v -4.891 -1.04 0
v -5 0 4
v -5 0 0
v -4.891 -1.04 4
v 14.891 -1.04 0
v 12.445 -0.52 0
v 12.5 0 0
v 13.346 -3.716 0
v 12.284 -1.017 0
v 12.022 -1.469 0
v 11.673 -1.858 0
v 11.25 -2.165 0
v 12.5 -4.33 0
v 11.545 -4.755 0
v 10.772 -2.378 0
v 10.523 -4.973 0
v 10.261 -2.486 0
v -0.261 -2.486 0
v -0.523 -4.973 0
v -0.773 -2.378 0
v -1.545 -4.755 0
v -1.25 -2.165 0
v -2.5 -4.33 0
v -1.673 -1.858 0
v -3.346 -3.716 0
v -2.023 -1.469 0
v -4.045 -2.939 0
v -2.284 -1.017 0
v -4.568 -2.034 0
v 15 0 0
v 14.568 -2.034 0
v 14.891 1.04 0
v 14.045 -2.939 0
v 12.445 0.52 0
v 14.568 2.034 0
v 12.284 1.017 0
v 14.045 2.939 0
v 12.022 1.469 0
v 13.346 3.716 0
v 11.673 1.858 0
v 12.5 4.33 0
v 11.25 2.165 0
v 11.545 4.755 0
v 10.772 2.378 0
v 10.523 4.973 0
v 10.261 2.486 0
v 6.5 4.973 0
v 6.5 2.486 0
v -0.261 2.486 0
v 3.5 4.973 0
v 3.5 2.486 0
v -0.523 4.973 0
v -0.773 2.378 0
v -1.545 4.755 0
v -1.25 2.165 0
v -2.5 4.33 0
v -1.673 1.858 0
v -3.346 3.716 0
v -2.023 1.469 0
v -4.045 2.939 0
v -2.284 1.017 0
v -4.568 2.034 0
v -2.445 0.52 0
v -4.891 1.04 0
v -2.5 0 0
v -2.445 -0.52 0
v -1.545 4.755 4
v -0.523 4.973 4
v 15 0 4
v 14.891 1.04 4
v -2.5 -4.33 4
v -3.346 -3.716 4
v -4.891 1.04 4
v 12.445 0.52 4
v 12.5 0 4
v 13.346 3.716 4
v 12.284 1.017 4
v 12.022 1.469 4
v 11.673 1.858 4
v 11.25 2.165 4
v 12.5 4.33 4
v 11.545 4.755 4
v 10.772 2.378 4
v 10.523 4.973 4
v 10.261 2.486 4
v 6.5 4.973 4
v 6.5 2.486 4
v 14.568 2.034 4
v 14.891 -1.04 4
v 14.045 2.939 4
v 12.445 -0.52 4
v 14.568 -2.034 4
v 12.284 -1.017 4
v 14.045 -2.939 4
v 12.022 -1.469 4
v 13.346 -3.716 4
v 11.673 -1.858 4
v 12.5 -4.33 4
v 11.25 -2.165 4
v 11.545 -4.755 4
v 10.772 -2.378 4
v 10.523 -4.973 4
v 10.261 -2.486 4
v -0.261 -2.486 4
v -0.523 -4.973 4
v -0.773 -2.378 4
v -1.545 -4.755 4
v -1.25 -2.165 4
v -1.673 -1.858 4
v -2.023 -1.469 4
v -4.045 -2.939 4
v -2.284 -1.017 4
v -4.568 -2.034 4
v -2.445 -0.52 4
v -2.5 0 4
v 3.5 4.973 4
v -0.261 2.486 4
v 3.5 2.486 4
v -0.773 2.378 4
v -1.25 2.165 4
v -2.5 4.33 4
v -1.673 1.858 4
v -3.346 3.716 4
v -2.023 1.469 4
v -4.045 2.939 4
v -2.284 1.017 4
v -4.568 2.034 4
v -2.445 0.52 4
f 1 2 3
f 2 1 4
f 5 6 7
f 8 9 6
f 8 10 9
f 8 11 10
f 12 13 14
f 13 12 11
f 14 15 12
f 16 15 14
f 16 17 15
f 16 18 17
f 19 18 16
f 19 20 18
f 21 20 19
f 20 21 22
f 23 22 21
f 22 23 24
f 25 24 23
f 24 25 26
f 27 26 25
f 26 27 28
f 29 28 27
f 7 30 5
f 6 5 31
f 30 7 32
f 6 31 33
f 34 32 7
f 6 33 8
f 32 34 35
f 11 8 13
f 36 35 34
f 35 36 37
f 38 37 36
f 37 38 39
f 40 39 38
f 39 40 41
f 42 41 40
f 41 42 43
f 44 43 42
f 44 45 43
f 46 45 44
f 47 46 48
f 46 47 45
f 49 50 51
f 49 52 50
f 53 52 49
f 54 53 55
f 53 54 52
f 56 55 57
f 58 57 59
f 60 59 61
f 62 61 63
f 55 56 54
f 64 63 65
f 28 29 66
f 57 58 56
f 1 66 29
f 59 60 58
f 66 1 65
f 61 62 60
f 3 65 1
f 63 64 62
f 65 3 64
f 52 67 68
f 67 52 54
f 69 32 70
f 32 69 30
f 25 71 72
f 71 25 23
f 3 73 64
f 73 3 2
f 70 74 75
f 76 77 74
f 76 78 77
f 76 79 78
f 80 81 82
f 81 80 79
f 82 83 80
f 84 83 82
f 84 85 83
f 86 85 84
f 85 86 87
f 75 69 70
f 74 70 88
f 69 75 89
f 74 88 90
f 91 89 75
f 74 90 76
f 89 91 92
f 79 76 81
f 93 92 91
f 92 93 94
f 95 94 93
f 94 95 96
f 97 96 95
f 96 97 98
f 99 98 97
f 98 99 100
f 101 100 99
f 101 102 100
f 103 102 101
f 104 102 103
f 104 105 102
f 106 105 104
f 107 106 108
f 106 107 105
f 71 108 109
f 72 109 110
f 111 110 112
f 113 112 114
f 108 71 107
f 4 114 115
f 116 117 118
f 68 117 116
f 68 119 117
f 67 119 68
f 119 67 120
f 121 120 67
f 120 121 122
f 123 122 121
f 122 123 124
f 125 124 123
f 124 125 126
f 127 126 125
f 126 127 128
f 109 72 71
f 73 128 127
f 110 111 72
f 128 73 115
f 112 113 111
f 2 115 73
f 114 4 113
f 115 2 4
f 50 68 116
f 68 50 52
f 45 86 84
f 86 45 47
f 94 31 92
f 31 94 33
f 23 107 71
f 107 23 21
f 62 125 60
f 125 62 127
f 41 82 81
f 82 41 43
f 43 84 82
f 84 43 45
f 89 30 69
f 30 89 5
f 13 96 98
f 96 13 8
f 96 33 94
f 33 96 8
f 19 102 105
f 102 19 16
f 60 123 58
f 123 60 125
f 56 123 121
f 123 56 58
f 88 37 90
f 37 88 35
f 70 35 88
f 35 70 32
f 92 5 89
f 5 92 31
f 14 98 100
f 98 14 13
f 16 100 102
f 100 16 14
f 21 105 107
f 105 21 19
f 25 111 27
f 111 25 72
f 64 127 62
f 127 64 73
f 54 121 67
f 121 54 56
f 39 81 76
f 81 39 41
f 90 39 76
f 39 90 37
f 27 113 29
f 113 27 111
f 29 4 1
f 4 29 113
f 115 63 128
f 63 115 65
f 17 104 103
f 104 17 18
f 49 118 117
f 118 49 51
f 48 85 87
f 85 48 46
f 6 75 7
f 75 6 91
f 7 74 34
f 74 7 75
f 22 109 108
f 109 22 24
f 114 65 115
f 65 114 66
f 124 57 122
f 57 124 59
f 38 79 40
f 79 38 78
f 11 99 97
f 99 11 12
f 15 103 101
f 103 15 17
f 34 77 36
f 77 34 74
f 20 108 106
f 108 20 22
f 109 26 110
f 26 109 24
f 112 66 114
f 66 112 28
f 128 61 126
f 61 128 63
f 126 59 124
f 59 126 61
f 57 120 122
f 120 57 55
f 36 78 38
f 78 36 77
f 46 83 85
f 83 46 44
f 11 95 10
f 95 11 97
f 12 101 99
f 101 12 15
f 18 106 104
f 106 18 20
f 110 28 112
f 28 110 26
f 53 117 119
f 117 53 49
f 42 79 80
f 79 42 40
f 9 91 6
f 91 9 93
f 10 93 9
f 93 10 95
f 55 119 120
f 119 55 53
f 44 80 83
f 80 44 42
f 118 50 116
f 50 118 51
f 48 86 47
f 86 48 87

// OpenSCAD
Largeur=10;
Longueur=20;
Epaisseur=5;
Hauteur=4;
Ouverture=3;

Artefact=0.05;

difference() {
    //Contour exterieur
    hull() {
        cylinder($fs=0.01,h=Hauteur,d=Largeur,center=false);
        translate([Longueur-2*Epaisseur,0,0])
            cylinder($fs=0.01,h=Hauteur,d=Largeur,center=false);
     }
    //Intérieur
    hull() {
        translate([0,0,-Artefact])
            cylinder($fs=0.01,h=Hauteur+2*Artefact,d=Largeur-Epaisseur,center=false);
        translate([0,0,-Artefact]) translate([Longueur-2*Epaisseur,0,0])
            cylinder($fs=0.01,h=Hauteur+2*Artefact,d=Largeur-Epaisseur,center=false);
    }
    //Ouverture
    translate([(Largeur-Ouverture)/2,0,0])
        translate([0,0,-Artefact]) cube([Ouverture,Epaisseur,Hauteur+2*Artefact]);
}
